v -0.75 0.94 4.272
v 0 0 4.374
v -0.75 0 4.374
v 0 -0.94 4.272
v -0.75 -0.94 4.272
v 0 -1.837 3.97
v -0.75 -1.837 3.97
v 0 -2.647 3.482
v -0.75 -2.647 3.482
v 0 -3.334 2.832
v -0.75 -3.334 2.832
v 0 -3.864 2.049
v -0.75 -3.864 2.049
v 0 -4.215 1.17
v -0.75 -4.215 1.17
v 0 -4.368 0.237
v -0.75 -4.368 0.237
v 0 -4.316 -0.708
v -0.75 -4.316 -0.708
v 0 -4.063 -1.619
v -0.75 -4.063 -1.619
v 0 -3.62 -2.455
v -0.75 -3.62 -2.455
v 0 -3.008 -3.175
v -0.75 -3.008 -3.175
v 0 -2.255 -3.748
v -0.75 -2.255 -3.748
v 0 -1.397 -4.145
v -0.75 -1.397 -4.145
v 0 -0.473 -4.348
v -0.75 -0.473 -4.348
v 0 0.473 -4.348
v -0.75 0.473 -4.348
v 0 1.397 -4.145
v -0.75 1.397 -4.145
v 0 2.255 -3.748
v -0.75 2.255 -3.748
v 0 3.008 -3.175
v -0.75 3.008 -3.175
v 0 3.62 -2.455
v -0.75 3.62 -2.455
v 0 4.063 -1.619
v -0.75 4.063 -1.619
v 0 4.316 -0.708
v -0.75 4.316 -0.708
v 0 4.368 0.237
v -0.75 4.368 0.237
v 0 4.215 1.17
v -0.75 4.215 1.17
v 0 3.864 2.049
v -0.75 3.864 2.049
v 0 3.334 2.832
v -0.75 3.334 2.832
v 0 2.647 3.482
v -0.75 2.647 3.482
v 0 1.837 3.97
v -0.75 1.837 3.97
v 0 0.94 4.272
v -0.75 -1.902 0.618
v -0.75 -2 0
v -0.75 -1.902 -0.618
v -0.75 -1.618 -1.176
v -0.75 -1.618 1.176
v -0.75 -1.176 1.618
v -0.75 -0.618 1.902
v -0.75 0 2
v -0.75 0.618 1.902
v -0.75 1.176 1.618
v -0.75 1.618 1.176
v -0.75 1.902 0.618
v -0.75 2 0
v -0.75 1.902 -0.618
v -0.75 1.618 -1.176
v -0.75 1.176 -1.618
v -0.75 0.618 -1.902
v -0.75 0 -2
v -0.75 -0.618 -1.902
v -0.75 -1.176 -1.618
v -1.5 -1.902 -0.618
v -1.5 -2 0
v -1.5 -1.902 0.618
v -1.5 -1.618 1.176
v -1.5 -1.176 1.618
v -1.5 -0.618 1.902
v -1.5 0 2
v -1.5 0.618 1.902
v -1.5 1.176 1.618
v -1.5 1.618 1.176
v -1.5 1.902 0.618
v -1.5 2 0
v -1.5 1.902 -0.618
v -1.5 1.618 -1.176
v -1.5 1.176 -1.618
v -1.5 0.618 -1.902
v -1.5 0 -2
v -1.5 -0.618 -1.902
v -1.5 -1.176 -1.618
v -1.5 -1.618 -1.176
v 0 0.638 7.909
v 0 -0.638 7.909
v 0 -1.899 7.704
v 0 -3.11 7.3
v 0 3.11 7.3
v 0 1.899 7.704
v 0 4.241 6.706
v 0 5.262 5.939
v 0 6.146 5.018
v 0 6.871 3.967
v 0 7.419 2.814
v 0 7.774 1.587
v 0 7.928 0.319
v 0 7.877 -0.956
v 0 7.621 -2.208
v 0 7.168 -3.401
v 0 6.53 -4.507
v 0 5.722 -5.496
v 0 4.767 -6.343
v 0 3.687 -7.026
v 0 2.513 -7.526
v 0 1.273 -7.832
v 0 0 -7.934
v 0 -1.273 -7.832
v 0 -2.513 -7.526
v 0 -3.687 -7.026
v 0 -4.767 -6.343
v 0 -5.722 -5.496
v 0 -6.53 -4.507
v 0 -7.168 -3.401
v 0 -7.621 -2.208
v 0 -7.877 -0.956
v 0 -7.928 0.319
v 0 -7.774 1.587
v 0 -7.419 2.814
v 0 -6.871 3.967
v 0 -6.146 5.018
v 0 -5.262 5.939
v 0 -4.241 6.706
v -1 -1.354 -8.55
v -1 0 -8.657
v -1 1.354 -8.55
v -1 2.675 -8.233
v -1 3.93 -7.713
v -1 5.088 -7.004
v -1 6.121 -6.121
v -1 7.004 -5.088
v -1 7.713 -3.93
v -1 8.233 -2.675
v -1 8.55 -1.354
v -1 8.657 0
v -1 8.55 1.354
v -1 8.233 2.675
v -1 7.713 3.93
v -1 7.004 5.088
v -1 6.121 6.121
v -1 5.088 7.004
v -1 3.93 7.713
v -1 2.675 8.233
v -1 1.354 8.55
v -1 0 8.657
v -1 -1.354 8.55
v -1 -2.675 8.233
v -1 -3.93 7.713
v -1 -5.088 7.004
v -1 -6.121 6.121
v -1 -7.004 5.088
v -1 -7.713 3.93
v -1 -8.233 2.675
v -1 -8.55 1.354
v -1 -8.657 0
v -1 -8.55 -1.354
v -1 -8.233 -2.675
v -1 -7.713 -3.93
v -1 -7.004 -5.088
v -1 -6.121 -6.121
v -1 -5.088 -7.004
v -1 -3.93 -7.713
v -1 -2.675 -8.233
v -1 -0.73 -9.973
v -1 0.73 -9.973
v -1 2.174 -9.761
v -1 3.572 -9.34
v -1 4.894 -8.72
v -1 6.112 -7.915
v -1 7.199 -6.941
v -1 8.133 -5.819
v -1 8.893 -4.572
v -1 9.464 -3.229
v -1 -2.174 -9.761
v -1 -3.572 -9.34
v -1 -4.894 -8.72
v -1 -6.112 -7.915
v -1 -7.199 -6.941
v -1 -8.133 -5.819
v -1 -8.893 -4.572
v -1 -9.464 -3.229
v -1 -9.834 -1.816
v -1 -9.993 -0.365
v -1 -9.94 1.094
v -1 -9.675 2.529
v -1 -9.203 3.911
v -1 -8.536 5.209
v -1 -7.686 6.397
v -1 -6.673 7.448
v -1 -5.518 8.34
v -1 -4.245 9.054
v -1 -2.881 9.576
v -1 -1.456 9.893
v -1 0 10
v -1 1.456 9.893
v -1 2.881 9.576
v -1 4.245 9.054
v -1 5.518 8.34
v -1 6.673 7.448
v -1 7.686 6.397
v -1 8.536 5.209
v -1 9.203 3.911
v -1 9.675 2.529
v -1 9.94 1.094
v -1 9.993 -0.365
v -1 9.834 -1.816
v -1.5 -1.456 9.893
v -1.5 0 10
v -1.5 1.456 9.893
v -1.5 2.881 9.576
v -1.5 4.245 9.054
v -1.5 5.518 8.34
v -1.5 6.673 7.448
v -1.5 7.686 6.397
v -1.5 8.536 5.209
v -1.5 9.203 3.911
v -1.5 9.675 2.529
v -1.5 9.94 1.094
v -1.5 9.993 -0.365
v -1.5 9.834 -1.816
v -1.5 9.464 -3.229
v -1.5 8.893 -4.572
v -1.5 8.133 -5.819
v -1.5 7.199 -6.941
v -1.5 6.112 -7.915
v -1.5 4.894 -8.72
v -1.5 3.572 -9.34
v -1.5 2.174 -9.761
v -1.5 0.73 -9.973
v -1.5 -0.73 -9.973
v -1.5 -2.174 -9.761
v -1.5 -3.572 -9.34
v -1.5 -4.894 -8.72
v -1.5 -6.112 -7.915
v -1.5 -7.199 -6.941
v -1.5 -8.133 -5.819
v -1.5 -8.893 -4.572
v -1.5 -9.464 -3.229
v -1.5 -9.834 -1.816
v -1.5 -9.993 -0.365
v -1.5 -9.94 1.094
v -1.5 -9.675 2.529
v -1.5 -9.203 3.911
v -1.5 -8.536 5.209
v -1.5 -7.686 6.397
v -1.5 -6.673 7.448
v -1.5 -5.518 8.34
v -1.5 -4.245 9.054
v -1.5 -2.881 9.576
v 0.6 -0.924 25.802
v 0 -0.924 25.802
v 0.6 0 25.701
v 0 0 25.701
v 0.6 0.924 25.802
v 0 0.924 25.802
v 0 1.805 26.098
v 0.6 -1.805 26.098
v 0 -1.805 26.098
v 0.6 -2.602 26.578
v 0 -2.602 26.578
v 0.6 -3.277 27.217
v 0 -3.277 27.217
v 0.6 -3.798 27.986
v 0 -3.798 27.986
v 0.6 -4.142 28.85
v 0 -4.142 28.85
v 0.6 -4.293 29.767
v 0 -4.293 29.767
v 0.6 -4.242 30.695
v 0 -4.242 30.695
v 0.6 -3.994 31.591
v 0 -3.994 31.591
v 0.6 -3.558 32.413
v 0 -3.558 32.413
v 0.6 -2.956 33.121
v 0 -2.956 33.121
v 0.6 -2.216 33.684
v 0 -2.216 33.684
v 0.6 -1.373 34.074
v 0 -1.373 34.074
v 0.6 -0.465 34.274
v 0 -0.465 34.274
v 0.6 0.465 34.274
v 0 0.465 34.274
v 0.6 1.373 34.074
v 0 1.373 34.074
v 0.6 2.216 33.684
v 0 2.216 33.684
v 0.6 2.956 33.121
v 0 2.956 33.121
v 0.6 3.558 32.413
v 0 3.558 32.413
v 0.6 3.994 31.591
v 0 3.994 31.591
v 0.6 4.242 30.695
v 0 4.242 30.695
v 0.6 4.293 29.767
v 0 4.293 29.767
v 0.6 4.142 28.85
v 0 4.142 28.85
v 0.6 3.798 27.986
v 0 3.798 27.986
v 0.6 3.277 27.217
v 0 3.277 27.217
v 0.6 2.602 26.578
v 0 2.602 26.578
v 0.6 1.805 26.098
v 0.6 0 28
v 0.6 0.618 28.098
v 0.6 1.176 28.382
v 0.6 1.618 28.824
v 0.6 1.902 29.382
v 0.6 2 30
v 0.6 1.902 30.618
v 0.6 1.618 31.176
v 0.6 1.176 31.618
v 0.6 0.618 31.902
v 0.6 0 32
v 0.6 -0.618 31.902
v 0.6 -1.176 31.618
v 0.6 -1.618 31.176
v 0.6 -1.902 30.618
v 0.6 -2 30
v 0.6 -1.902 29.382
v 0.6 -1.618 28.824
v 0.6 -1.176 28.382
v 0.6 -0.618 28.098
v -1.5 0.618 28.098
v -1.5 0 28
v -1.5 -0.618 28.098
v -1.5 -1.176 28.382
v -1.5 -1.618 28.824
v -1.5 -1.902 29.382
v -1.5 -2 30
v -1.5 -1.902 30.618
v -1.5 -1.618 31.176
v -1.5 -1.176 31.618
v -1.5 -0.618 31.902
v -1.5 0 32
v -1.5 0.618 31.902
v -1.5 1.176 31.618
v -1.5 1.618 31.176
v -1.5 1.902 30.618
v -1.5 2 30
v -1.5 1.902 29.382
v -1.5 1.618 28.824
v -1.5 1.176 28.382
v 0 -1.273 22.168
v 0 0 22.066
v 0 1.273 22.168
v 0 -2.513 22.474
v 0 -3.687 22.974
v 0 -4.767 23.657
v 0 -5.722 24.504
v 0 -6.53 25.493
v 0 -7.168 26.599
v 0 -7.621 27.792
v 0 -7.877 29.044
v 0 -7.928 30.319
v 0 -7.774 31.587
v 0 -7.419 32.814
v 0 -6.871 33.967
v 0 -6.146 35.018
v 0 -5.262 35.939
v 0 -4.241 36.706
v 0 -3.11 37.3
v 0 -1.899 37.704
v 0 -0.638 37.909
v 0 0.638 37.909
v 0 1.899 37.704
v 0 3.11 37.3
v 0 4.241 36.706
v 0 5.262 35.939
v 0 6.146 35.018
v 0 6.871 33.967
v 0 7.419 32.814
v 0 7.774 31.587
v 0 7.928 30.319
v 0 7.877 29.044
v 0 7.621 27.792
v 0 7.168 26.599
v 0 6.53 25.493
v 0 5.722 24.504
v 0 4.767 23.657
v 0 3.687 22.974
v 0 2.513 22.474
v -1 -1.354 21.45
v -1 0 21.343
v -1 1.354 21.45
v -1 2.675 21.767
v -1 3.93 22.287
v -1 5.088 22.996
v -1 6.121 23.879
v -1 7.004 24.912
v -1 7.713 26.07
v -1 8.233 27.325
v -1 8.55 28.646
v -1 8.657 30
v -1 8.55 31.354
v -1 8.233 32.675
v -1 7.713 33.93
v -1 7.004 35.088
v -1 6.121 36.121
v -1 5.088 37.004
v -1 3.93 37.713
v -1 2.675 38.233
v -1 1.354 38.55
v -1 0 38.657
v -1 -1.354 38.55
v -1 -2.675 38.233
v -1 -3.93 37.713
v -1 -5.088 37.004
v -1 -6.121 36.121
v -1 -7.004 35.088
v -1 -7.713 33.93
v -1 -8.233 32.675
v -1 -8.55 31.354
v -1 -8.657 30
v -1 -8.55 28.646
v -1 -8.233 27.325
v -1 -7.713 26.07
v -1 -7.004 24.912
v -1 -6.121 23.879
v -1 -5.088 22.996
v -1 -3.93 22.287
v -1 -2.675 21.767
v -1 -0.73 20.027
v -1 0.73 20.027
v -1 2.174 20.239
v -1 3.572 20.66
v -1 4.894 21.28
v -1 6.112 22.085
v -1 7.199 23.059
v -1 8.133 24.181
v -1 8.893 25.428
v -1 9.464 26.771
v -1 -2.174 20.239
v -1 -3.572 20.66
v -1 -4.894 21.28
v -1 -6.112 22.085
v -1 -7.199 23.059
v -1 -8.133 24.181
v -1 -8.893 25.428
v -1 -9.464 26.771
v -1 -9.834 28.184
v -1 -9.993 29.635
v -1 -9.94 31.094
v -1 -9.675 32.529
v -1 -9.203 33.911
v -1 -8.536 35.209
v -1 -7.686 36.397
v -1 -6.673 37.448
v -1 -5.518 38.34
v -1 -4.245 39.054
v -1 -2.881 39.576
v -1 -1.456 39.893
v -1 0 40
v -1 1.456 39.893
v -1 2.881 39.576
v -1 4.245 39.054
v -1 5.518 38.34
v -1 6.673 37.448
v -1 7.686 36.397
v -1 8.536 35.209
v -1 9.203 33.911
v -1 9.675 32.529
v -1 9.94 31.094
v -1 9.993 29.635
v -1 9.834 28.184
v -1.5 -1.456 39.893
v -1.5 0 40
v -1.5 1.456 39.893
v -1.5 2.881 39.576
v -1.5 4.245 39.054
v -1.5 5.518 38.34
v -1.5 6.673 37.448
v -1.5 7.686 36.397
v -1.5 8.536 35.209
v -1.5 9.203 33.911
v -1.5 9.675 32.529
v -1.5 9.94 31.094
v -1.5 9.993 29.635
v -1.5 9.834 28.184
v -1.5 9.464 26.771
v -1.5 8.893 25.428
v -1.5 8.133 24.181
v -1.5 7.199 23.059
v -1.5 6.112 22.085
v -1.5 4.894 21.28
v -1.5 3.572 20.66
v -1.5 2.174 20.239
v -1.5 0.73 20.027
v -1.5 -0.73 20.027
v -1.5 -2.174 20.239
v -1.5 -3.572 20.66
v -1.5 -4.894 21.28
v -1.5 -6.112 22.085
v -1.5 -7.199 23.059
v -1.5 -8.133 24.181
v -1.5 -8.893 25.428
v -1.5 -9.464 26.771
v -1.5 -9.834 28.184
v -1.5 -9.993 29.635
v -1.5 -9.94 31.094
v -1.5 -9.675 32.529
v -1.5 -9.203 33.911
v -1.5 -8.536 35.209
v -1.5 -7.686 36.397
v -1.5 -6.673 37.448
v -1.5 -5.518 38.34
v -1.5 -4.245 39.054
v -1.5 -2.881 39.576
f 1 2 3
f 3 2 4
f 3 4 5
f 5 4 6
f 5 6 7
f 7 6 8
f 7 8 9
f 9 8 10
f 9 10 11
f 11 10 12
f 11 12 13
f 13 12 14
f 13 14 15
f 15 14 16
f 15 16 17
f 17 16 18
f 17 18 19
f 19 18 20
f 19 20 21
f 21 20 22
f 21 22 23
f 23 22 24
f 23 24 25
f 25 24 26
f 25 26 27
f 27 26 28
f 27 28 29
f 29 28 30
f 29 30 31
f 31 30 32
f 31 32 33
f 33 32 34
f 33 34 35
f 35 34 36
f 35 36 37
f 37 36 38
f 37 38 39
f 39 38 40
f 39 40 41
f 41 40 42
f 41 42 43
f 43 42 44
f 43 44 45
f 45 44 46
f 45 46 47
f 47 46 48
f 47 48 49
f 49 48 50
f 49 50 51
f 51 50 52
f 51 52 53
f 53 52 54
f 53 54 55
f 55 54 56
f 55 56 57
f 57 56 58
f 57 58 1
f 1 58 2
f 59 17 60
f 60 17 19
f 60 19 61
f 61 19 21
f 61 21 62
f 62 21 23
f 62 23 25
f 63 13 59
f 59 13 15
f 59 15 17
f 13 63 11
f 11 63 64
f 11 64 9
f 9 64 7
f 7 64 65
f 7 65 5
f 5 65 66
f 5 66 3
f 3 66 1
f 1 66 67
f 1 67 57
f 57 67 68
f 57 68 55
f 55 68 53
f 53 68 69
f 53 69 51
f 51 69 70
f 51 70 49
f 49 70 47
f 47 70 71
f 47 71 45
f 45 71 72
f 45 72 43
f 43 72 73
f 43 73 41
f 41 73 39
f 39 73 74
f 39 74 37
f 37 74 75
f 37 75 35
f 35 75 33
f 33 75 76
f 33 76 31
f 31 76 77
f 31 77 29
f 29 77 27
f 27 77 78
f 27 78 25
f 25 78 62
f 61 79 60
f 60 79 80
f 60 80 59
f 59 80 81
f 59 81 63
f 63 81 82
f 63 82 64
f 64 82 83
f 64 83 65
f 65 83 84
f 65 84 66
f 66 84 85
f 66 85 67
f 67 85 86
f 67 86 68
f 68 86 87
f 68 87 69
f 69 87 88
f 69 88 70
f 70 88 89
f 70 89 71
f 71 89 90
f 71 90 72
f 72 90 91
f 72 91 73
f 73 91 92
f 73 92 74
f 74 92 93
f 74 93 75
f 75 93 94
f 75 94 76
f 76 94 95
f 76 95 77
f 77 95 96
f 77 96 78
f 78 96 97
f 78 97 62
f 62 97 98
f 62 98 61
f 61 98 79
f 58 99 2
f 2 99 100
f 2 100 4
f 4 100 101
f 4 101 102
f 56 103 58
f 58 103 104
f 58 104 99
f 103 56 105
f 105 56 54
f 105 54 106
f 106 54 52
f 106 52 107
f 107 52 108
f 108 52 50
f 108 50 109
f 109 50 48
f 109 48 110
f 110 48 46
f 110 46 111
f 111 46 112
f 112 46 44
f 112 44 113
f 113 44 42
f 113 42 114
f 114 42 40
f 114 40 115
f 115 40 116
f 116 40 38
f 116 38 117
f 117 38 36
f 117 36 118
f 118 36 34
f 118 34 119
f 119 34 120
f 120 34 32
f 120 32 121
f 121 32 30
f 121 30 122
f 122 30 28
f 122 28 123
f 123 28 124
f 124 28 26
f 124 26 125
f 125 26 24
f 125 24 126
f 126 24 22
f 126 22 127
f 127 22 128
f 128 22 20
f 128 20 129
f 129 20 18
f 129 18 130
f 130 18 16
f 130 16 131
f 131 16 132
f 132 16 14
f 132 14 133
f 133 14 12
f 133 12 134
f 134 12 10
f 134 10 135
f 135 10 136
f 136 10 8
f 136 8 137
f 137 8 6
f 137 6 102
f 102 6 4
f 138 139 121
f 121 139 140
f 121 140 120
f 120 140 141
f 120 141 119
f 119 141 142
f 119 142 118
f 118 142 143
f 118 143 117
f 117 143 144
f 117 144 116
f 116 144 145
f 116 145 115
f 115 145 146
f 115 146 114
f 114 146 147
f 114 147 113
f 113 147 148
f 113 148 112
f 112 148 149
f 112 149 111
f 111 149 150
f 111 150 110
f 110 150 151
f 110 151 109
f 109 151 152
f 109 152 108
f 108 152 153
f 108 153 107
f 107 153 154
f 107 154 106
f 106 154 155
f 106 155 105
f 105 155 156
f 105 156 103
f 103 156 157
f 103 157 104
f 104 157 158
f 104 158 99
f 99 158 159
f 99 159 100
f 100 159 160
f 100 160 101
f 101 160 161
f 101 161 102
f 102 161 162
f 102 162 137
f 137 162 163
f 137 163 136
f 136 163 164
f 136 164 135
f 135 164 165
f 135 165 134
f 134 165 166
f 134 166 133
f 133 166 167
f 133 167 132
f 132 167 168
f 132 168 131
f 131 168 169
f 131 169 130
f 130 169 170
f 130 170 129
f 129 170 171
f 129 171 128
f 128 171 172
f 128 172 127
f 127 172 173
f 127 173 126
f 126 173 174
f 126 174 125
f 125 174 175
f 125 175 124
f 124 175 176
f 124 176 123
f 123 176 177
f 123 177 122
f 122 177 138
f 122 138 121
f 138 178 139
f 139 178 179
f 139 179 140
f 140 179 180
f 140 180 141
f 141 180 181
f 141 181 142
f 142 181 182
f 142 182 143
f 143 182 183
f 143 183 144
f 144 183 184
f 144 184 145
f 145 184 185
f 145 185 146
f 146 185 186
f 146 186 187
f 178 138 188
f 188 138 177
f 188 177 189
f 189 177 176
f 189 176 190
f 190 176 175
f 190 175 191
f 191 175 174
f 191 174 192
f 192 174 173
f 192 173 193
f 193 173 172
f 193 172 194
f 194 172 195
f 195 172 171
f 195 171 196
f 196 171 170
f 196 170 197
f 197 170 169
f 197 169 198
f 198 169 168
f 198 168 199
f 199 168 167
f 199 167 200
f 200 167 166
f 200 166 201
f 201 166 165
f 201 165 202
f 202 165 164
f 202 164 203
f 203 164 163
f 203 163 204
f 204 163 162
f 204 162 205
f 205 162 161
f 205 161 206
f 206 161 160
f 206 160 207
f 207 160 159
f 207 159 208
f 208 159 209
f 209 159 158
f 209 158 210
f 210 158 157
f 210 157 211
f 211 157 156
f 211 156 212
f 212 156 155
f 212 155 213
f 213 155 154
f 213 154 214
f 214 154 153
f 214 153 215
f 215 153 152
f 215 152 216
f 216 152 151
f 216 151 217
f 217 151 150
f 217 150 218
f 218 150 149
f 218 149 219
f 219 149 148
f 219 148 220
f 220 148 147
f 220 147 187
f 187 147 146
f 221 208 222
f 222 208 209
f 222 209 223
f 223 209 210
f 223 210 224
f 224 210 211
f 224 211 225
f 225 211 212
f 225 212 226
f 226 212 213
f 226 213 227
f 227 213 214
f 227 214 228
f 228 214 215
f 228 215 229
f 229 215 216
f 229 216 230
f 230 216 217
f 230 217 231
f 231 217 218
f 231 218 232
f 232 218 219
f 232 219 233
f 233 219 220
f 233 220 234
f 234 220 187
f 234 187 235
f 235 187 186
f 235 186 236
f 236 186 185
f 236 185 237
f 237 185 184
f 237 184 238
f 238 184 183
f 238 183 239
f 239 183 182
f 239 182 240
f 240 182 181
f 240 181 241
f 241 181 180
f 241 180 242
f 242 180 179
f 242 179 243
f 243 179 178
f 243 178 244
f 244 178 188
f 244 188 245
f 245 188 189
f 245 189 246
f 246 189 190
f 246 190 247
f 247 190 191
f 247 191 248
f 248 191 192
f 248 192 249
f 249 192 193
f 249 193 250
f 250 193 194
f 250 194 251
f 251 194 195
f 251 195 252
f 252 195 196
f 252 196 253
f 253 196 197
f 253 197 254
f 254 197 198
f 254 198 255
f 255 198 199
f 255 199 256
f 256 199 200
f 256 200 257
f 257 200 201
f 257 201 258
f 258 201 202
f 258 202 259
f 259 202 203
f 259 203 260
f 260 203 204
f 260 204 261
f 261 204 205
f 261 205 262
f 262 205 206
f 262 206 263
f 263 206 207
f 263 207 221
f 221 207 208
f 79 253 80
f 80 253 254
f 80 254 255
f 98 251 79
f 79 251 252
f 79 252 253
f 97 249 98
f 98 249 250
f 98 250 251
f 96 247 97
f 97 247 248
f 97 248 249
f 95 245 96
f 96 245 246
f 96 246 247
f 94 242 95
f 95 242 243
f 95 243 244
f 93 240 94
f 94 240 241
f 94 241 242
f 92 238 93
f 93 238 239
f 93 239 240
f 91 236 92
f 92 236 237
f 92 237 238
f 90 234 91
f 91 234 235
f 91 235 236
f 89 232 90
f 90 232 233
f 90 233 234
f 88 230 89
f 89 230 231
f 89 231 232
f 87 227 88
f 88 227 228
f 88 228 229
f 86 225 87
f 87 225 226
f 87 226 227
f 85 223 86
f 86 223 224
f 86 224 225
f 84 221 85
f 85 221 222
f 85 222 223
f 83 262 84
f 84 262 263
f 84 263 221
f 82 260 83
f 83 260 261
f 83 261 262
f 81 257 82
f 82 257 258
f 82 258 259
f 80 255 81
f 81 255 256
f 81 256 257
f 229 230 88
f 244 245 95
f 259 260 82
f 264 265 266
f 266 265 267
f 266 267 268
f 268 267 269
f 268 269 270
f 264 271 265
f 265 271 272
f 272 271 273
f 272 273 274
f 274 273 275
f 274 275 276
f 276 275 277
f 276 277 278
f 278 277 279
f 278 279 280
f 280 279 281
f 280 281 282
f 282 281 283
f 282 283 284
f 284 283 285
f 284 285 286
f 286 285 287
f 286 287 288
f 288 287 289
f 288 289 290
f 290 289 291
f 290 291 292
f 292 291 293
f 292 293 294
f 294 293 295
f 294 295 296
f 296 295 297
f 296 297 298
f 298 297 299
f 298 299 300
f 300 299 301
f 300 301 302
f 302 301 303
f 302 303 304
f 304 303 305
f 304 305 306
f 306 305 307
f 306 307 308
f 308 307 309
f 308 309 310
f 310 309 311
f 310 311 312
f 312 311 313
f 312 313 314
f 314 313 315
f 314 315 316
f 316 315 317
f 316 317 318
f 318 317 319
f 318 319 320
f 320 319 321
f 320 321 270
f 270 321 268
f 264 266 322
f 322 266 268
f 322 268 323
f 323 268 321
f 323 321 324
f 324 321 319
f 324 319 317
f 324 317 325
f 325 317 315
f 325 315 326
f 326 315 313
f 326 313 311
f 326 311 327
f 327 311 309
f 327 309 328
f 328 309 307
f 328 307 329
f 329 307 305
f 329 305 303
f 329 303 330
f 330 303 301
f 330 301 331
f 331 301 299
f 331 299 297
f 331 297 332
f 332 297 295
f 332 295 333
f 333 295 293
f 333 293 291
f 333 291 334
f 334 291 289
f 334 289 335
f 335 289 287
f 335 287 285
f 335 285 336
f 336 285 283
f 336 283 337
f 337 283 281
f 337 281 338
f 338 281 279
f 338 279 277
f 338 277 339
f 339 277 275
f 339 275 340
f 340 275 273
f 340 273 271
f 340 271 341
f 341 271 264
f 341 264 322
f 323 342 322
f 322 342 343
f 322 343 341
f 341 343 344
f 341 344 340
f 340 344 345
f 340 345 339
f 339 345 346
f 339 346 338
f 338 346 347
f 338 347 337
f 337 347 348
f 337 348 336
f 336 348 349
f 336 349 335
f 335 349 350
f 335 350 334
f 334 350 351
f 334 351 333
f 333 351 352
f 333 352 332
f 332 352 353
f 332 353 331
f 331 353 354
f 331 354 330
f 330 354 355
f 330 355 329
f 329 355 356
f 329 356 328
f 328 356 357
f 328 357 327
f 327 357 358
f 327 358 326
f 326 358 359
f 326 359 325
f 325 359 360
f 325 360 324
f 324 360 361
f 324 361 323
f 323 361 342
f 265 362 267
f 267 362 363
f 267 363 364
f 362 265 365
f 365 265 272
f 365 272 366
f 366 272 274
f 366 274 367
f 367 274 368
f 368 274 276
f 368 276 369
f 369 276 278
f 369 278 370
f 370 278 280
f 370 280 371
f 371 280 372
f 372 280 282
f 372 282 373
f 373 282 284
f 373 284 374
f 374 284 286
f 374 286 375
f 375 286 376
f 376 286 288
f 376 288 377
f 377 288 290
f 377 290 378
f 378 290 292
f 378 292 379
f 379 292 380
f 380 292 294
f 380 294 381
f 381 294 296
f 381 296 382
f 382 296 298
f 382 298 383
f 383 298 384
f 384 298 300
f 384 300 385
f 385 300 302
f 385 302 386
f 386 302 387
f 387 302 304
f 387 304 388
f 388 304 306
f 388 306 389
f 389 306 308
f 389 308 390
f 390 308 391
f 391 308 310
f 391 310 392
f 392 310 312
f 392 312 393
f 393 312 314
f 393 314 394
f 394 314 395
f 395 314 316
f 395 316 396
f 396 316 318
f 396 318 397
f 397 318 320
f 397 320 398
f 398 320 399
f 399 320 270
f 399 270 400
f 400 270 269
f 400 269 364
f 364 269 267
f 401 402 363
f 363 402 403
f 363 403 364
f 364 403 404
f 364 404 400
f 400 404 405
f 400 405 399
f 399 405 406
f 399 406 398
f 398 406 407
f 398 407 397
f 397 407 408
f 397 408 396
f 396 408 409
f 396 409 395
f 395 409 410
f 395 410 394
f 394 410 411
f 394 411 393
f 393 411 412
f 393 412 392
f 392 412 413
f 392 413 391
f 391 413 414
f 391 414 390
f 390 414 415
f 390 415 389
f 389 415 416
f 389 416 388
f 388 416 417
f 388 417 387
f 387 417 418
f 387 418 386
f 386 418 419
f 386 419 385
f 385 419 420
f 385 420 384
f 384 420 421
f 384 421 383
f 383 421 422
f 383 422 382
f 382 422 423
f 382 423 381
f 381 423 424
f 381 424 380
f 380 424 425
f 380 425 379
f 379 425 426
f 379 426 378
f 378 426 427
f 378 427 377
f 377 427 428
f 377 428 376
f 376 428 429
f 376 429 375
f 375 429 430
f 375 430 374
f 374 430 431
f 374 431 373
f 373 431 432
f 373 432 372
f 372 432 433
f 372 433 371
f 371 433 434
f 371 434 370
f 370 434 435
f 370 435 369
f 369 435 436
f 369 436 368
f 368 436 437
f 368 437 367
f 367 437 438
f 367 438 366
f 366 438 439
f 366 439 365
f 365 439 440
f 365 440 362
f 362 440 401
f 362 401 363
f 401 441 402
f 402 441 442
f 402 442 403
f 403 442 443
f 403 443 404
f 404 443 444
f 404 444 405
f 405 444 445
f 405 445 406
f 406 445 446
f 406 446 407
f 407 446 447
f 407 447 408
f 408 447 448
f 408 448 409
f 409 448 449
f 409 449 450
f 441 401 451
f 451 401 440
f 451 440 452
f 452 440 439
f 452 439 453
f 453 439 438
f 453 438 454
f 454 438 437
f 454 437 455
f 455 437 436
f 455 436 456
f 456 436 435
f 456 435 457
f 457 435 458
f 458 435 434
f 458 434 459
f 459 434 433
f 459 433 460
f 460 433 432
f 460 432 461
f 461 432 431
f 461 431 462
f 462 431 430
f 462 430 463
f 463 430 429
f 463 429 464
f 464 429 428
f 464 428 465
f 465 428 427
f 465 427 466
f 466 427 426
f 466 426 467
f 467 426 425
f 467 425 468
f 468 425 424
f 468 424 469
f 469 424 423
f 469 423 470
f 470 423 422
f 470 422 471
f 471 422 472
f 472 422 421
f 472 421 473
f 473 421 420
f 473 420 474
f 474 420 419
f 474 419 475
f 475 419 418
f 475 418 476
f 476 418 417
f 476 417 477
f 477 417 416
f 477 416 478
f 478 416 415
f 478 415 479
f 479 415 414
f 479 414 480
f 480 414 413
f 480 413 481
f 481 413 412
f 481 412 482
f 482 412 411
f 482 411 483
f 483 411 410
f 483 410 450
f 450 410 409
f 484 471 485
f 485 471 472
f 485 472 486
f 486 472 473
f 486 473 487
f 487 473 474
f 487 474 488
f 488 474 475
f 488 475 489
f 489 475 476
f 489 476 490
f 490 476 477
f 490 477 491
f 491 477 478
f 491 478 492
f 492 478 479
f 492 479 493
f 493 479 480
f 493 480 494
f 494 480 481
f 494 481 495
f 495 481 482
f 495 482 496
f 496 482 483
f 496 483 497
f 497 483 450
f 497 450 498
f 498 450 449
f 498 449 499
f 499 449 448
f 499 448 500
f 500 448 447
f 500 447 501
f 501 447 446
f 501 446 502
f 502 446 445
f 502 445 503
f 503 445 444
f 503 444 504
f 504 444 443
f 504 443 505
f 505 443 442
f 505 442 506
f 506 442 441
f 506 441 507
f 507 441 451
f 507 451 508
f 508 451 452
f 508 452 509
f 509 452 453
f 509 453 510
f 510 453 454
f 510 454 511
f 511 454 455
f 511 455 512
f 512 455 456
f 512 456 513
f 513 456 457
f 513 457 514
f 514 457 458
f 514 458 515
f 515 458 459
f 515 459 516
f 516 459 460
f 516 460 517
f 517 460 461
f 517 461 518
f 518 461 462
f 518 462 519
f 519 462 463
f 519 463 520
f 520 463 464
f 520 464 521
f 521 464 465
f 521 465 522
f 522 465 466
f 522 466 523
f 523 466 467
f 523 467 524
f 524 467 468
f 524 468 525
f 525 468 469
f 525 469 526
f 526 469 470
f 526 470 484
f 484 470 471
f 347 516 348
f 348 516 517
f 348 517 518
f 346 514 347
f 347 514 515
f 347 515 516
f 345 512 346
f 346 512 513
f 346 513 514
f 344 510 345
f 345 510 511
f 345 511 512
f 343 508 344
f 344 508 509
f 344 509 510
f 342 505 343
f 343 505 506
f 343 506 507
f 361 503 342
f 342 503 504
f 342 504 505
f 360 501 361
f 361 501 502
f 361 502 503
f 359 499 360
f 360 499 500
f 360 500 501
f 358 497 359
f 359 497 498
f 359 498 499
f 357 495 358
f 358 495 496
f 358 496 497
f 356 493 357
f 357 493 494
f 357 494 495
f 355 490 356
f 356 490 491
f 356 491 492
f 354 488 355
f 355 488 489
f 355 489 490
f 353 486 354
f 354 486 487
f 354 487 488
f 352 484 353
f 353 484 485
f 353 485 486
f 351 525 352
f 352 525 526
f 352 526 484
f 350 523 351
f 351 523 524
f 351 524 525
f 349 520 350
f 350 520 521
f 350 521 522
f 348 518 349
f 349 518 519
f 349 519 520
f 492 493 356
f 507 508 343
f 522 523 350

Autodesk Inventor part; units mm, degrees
ref_plane "YZ Plane" through (0, 0, 0) normal (1, 0, 0) x (0, 1, 0)
ref_plane "XZ Plane" through (0, 0, 0) normal (0, 1, 0) x (-1, 0, 0)
ref_plane "XY Plane" through (0, 0, 0) normal (0, 0, 1) x (1, 0, 0)
sketch "Sketch1" plane through (0, 0, 0) normal (1, 0, 0) x (0, 1, 0)
  circle A0 centre (0, 0) radius 7.9344
  dimension "d0" = 15.8689
extrude "Extrusion1" add sketch "Sketch1" along normal mid plane 2
sketch "Sketch2" plane through (-1, 0, 0) normal (-1, 0, 0) x (0, 0, 1)
  circle A0 centre (0, 0) radius 10
  dimension "d46" = 20
extrude "Extrusion2" add sketch "Sketch2" along normal blind 0.5
sketch "Sketch3" plane through (-1.5, 0, 0) normal (-1, 0, 0) x (0, 0, 1)
  point P0 (0, 0)
sketch "Sketch5" plane through (0, 0, 0) normal (0, 1, 0) x (-1, 0, 0)
  circle A0 centre (0, -0.6447) radius 0.3263
  line L0 (-1.5, 0) -> (1.5, 0)
  circle A1 centre (0, 0.6447) radius 0.3263
  point P0 (0, 0)
sketch "Sketch6" plane through (0, 0, 0) normal (0, 1, 0) x (-1, 0, 0)
  line L0 (1, -7.9344) -> (1, 7.9344)
  line L1 (1, -7.9344) -> (-1, -7.9344)
  line L2 (0, -7.9344) -> (1, -8.6569)
  line L3 (1, -10) -> (1, 10)
  line L4 (0, -7.9344) -> (-1, -8.6569)
  line L5 (-1, -8.6569) -> (-1, -7.9344)
  line L6 (1, -7.9344) -> (1, -8.6569)
  line L7 (-2.6263, 0) -> (3.0126, 0)
  line L8 (-1, -8.6569) -> (-1, -7.9344)
  line L9 (0, -7.9344) -> (1, -7.9344)
  point P0 (0, 0)
  dimension "d45" = 0
revolve "Revolution1" add sketch "Sketch6" angle 360 about axis through (2.6263, 0, 0) along (-1, 0, 0)
sketch "Sketch7" plane through (0, 0, 0) normal (0, 1, 0) x (-1, 0, 0)
  line L0 (-5.9098, -9.529) -> (0, -9.529)
  line L1 (0, -9.529) -> (0, 9.1694)
  line L2 (0, 9.1694) -> (-5.9098, 9.1694)
  line L3 (-5.9098, 9.1694) -> (-5.9098, -9.529)
  point P0 (0, 0)
extrude "Extrusion6" cut sketch "Sketch7" along normal mid plane 22.75
sketch "Sketch8" plane through (0, 0, 0) normal (1, 0, 0) x (0, 1, 0)
  circle A0 centre (0, 0) radius 2
  dimension "d15" = 4
extrude "Extrusion7" cut sketch "Sketch8" against normal through all
sketch "Sketch9" plane through (0, 0, 0) normal (1, 0, 0) x (0, 0, 1)
  circle A0 centre (0, 0) radius 4.374
  circle A1 centre (0, 0) radius 2 projected
  arc A2 (1.4796, -1.3457) -> (-1.4796, -1.3457) centre (0, 0) ccw
  line L0 (0.971, 0) -> (0.971, -2) projected
  line L1 (-0.971, -2) -> (-0.971, 0) projected
  point P0 (-7.9344, 0)
  point P1 (0, -2)
  point P2 (0, -2)
  point P3 (-7.9344, 0)
  dimension "d36" = 8.7479
extrude "Extrusion8" cut sketch "Sketch9" against normal blind 0.75 contours A0 | A1
pattern_linear "Rectangular Pattern3" count 2 spacing 30 along (0, 0, 1) of "Extrusion1", "Extrusion2", "Revolution1", "Extrusion6", "Extrusion7"
sketch "Sketch10" plane through (0, 0, 22.0655) normal (1, 0, 0) x (0, 0, -1)
  arc A0 (-7.9345, 2) -> (-7.9345, 2) centre (-7.9345, 0) ccw
  circle A1 centre (-7.9344, 0) radius 2
  circle A2 centre (-7.9344, 0) radius 4.299
  point P0 (22.0655, 0)
  dimension "d43" = 8.5979
extrude "Extrusion9" add sketch "Sketch10" along normal blind 0.6
sketch "Sketch11" plane through (0, 0, 30) normal (1, 0, 0) x (0, 1, 0)
  line L0 (12.8492, -9.7207) -> (-12.5468, -9.7207)
  line L1 (-12.5468, -9.7207) -> (-12.5468, -34.2097)
  line L2 (-12.5468, -34.2097) -> (12.8492, -34.2097)
  line L3 (12.8492, -34.2097) -> (12.8492, -9.7207)
  point P0 (0, -30)
ref_plane "Work Plane7" through (0, 0, 30) normal (1, 0, 0) x (0, 1, 0)
equation "\"tolerancia\" = 0.15"
properties part number "poleas_pulgar_falages23_v13"
